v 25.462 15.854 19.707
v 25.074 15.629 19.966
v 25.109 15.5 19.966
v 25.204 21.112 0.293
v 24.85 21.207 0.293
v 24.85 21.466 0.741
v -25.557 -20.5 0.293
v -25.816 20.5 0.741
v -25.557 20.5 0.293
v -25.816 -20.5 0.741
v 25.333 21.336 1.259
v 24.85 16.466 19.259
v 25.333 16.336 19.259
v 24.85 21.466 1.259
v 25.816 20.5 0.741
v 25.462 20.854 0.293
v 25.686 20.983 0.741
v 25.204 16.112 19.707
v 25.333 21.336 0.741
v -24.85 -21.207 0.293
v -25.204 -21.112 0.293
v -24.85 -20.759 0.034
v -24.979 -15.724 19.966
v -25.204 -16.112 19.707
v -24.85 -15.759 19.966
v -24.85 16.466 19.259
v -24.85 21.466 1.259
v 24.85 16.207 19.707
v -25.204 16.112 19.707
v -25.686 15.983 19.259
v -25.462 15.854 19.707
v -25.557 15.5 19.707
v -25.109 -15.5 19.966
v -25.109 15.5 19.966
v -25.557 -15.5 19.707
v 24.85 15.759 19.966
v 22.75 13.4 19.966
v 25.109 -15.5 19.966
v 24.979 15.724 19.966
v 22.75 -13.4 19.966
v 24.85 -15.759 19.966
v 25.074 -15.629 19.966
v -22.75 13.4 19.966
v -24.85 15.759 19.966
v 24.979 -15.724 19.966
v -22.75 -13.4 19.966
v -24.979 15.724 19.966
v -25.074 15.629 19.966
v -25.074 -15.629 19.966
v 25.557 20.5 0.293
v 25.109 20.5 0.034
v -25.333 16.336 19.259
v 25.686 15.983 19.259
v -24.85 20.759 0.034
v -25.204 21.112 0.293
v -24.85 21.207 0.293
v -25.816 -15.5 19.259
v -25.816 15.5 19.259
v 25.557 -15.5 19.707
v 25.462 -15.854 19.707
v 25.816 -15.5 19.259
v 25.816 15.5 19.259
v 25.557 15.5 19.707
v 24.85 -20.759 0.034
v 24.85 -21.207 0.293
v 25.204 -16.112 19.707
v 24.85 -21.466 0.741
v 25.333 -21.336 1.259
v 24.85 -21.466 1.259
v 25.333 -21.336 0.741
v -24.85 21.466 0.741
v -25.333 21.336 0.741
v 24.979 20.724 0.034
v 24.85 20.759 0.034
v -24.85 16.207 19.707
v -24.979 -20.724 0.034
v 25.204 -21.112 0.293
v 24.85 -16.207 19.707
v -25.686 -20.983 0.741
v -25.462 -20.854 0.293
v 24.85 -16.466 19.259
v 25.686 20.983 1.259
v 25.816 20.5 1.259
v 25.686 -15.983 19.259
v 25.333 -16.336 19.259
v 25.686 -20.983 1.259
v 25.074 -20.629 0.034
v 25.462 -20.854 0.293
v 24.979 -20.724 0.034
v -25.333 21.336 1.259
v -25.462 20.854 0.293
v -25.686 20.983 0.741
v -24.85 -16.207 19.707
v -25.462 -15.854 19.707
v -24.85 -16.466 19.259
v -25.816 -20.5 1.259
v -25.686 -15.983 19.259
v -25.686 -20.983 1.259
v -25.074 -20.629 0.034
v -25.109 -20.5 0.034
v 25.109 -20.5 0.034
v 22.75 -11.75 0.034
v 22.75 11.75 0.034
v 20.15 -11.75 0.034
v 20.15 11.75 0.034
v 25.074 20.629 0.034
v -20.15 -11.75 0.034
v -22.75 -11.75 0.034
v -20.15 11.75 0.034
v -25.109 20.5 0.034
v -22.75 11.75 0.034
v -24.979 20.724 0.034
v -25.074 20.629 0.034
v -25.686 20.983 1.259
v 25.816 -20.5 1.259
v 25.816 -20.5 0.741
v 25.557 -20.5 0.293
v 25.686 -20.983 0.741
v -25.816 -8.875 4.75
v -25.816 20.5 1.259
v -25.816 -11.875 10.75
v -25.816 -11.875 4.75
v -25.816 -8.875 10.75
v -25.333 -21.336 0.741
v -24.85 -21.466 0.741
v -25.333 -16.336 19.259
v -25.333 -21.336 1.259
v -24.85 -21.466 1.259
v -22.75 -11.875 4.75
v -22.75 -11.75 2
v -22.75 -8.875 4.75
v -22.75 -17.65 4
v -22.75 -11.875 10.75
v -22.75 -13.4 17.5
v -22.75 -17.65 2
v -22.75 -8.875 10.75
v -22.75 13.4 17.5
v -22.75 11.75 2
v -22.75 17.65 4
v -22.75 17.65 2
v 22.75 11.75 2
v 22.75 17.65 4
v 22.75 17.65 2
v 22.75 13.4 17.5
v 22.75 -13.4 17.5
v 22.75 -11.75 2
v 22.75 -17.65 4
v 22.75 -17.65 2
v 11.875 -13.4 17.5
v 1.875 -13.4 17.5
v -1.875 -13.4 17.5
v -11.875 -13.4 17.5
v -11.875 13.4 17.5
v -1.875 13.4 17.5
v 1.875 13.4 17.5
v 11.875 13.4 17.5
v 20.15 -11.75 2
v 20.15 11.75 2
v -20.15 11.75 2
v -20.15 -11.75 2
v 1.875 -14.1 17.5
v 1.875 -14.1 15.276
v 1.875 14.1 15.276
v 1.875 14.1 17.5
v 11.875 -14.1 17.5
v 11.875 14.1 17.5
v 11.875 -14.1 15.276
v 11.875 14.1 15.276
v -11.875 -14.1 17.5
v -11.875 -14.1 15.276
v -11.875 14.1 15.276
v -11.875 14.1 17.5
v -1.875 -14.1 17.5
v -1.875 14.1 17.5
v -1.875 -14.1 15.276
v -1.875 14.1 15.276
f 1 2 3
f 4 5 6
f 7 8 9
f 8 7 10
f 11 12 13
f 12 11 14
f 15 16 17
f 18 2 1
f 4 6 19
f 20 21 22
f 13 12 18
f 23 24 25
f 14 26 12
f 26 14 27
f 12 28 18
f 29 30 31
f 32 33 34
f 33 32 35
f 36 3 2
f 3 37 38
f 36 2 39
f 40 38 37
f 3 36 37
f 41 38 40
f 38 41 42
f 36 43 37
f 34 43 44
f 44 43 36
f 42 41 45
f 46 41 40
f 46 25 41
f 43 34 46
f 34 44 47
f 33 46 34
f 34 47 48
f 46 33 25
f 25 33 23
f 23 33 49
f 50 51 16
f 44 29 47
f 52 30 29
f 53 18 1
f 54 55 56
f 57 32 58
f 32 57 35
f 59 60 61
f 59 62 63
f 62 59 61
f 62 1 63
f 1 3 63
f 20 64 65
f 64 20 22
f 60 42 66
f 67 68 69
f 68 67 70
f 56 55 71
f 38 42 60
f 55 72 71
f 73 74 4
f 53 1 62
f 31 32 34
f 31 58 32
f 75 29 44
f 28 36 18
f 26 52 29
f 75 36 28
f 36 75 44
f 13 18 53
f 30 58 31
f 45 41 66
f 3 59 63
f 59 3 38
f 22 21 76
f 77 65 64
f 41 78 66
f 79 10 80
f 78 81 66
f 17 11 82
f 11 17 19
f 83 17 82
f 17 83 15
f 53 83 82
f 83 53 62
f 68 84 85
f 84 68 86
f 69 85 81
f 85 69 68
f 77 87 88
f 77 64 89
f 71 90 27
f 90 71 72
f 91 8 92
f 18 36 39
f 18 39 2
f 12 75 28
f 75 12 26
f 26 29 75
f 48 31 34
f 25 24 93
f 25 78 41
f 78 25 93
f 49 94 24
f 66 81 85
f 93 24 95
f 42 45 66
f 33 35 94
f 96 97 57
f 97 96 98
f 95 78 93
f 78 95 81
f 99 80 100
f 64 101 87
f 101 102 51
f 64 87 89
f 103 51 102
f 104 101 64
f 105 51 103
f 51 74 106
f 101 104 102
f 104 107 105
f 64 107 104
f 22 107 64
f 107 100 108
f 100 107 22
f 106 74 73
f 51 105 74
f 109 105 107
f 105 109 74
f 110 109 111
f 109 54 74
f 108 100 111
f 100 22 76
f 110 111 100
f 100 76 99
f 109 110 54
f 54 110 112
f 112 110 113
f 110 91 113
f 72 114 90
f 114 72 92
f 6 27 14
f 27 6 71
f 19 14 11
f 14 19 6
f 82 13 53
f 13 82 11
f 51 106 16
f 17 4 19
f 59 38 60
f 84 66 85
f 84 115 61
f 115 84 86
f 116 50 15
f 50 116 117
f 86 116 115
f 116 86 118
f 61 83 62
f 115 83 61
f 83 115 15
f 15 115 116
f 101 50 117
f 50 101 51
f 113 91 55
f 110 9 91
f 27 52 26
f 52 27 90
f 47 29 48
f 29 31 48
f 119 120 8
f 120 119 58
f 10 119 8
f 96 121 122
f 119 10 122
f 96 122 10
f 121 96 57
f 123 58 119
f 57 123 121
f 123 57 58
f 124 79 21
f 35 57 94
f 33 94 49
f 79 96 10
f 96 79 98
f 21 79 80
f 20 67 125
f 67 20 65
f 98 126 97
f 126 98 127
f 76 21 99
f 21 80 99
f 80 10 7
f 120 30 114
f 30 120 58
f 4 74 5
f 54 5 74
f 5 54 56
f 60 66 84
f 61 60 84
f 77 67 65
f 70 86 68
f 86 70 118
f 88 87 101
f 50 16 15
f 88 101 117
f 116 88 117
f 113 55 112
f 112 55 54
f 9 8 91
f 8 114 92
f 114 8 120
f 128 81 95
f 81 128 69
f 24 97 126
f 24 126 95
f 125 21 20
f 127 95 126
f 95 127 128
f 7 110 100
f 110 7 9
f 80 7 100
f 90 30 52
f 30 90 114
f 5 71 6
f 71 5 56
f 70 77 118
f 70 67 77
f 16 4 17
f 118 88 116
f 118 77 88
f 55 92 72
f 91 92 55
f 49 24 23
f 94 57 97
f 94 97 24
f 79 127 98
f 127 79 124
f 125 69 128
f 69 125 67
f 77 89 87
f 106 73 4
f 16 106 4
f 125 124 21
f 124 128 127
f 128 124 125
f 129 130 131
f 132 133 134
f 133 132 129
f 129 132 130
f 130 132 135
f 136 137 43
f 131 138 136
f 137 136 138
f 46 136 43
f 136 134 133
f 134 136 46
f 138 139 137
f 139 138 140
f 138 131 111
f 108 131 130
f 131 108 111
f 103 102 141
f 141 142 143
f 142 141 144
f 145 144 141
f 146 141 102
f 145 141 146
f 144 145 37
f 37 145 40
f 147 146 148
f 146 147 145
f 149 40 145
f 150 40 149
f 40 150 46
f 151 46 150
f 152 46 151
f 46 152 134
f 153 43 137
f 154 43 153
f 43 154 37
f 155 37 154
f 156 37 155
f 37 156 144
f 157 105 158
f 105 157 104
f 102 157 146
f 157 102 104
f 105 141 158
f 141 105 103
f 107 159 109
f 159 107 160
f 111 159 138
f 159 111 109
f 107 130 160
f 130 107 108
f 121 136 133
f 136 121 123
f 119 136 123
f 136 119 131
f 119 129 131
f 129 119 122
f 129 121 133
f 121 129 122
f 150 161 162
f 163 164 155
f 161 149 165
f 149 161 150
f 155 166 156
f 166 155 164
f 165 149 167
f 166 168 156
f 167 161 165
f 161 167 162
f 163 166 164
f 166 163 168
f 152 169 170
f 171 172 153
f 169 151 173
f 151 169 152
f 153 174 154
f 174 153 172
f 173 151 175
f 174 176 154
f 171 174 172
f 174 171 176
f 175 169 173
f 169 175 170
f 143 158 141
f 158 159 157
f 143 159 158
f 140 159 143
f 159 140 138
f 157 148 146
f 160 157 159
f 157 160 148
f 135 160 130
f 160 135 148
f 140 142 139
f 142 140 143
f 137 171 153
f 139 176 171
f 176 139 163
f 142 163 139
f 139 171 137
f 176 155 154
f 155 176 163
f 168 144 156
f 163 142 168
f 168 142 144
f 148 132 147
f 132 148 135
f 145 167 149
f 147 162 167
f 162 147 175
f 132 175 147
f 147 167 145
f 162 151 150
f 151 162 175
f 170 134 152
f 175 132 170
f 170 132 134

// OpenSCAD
// the display module
module voltmeter()
{
   // origin: top center of front, digits on top
   color("dimgrey")
   {
      difference()
      {
         union()
         {
            translate([0.0, 0.0, -16.0/2 + 1.0])
               cube([44.9, 26.2, 16.0], center = true);
            translate([0.0, 0.0, 2.5/2])
               cube([47.7, 29.0, 2.5], center = true);
         }
         translate([0.0, 0.0, 10.0/2])
            cube([36.0, 18.2, 10.0], center = true);
         hull()
         {
            translate([0.0, 0.0, 1.0 + 1.0/2])
               cube([36.0, 18.2, 1.0], center = true);
            translate([0.0, 0.0, 2.5 + 1.0/2])
               cube([42.0, 22.2, 1.0], center = true);
         }
      }
      translate([ (44.9 - 2.0)/2, 0.0, -15.0 - 4.5/2 + 1.0])
         cube([2.0, 21.5, 5.5], center = true);
      translate([-(44.9 - 2.0)/2, 0.0, -15.0 - 4.5/2 + 1.0])
         cube([2.0, 21.5, 5.5], center = true);
   }

   color("red")
      translate([-40.0/2, -(19.5 + 22.0)/4, -10.0 - 0.5*1.5])
         rotate([0, 90, 0])
            cylinder(d = 1.5, h = 40.0, $fn = 12, center = true);
   color("dimgrey")
      translate([-40.0/2, -(19.5 + 22.0)/4, -10.0 - 1.5*1.5])
         rotate([0, 90, 0])
            cylinder(d = 1.5, h = 40.0, $fn = 12, center = true);
   color("yellow")
      translate([-40.0/2, -(19.5 + 22.0)/4, -10.0 - 2.5*1.5])
         rotate([0, 90, 0])
            cylinder(d = 1.5, h = 40.0, $fn = 12, center = true);
}


// the box for the display
module box()
{
   // origin: top center of front, digits on top
   color("orange")
   {
      difference()
      {
         // body of box
         hull()
         {
            translate([ (47.7 + 2.0)/2,  (29.0 + 2.0)/2, -0.0 - 2.0/2])
               sphere(d = 2.0, $fn = 12, center = true);
            translate([ (47.7 + 2.0)/2, -(29.0 + 2.0)/2, -0.0 - 2.0/2])
               sphere(d = 2.0, $fn = 12, center = true);
            translate([-(47.7 + 2.0)/2,  (29.0 + 2.0)/2, -0.0 - 2.0/2])
               sphere(d = 2.0, $fn = 12, center = true);
            translate([-(47.7 + 2.0)/2, -(29.0 + 2.0)/2, -0.0 - 2.0/2])
               sphere(d = 2.0, $fn = 12, center = true);
            
            translate([ (47.7 + 2.0)/2,  (29.0 + 12.0)/2, -20.0 + 2.0/2])
               sphere(d = 2.0, $fn = 12, center = true);
            translate([ (47.7 + 2.0)/2, -(29.0 + 12.0)/2, -20.0 + 2.0/2])
               sphere(d = 2.0, $fn = 12, center = true);
            translate([-(47.7 + 2.0)/2,  (29.0 + 12.0)/2, -20.0 + 2.0/2])
               sphere(d = 2.0, $fn = 12, center = true);
            translate([-(47.7 + 2.0)/2, -(29.0 + 12.0)/2, -20.0 + 2.0/2])
               sphere(d = 2.0, $fn = 12, center = true);
         }
         // volume for display
         translate([0.0, 0.0, -15.0/2])
            cube([44.9 + 0.6, 26.2 + 0.6, 15.0 + 1.0], center = true);
         translate([ (44.9 - 2.0)/2, 0.0, -15.0 - 4.5/2])
            cube([2.0 + 0.6, 21.5 + 2.0, 4.5 + 3.0], center = true);
         translate([-(44.9 - 2.0)/2, 0.0, -15.0 - 4.5/2])
            cube([2.0 + 0.6, 21.5 + 2.0, 4.5 + 3.0], center = true);
         translate([-40.0/2, -(19.5 + 22.0)/4, -10.0 - 1.5*1.5])
            cube([40.0, 1*1.5 + 1.5, 3*1.5 + 1.5], center = true);

         // spare out for catch nose
         translate([ (4.5 + 23.0)/4, 0.0, -2.5 - 5.0/2])
            cube([9.0 + 1.0, 26.2 + 2.0, 5.0], center = true);
         translate([-(4.5 + 23.0)/4, 0.0, -2.5 - 5.0/2])
            cube([9.0 + 1.0, 26.2 + 2.0, 5.0], center = true);
         
         // less material
         hull()
         {
            translate([0.0, 0.0, -2.5 - 2.0/2])
               cube([44.9 + 0.6, 26.2 + 0.6, 2.0], center = true);
            translate([0.0, 0.0, -18.0 + 2.0/2])
               cube([44.9 + 0.6, 26.2 + 9.1, 2.0], center = true);
         }
      }
   }
}
module show()
{
   difference()
   {
      union()
      {
         translate([0.0, 0.0, 0*20.0])
            voltmeter();
         translate([0.0, 0.0, 0.0])
            box();
      }
      translate([100.0/2, -100.0/2, 0.0])
         cube(100.0, center = true);
   }
}


module print()
{
   translate([0.0, 0.0, 20.0])
      box();
}


// show();
print();
